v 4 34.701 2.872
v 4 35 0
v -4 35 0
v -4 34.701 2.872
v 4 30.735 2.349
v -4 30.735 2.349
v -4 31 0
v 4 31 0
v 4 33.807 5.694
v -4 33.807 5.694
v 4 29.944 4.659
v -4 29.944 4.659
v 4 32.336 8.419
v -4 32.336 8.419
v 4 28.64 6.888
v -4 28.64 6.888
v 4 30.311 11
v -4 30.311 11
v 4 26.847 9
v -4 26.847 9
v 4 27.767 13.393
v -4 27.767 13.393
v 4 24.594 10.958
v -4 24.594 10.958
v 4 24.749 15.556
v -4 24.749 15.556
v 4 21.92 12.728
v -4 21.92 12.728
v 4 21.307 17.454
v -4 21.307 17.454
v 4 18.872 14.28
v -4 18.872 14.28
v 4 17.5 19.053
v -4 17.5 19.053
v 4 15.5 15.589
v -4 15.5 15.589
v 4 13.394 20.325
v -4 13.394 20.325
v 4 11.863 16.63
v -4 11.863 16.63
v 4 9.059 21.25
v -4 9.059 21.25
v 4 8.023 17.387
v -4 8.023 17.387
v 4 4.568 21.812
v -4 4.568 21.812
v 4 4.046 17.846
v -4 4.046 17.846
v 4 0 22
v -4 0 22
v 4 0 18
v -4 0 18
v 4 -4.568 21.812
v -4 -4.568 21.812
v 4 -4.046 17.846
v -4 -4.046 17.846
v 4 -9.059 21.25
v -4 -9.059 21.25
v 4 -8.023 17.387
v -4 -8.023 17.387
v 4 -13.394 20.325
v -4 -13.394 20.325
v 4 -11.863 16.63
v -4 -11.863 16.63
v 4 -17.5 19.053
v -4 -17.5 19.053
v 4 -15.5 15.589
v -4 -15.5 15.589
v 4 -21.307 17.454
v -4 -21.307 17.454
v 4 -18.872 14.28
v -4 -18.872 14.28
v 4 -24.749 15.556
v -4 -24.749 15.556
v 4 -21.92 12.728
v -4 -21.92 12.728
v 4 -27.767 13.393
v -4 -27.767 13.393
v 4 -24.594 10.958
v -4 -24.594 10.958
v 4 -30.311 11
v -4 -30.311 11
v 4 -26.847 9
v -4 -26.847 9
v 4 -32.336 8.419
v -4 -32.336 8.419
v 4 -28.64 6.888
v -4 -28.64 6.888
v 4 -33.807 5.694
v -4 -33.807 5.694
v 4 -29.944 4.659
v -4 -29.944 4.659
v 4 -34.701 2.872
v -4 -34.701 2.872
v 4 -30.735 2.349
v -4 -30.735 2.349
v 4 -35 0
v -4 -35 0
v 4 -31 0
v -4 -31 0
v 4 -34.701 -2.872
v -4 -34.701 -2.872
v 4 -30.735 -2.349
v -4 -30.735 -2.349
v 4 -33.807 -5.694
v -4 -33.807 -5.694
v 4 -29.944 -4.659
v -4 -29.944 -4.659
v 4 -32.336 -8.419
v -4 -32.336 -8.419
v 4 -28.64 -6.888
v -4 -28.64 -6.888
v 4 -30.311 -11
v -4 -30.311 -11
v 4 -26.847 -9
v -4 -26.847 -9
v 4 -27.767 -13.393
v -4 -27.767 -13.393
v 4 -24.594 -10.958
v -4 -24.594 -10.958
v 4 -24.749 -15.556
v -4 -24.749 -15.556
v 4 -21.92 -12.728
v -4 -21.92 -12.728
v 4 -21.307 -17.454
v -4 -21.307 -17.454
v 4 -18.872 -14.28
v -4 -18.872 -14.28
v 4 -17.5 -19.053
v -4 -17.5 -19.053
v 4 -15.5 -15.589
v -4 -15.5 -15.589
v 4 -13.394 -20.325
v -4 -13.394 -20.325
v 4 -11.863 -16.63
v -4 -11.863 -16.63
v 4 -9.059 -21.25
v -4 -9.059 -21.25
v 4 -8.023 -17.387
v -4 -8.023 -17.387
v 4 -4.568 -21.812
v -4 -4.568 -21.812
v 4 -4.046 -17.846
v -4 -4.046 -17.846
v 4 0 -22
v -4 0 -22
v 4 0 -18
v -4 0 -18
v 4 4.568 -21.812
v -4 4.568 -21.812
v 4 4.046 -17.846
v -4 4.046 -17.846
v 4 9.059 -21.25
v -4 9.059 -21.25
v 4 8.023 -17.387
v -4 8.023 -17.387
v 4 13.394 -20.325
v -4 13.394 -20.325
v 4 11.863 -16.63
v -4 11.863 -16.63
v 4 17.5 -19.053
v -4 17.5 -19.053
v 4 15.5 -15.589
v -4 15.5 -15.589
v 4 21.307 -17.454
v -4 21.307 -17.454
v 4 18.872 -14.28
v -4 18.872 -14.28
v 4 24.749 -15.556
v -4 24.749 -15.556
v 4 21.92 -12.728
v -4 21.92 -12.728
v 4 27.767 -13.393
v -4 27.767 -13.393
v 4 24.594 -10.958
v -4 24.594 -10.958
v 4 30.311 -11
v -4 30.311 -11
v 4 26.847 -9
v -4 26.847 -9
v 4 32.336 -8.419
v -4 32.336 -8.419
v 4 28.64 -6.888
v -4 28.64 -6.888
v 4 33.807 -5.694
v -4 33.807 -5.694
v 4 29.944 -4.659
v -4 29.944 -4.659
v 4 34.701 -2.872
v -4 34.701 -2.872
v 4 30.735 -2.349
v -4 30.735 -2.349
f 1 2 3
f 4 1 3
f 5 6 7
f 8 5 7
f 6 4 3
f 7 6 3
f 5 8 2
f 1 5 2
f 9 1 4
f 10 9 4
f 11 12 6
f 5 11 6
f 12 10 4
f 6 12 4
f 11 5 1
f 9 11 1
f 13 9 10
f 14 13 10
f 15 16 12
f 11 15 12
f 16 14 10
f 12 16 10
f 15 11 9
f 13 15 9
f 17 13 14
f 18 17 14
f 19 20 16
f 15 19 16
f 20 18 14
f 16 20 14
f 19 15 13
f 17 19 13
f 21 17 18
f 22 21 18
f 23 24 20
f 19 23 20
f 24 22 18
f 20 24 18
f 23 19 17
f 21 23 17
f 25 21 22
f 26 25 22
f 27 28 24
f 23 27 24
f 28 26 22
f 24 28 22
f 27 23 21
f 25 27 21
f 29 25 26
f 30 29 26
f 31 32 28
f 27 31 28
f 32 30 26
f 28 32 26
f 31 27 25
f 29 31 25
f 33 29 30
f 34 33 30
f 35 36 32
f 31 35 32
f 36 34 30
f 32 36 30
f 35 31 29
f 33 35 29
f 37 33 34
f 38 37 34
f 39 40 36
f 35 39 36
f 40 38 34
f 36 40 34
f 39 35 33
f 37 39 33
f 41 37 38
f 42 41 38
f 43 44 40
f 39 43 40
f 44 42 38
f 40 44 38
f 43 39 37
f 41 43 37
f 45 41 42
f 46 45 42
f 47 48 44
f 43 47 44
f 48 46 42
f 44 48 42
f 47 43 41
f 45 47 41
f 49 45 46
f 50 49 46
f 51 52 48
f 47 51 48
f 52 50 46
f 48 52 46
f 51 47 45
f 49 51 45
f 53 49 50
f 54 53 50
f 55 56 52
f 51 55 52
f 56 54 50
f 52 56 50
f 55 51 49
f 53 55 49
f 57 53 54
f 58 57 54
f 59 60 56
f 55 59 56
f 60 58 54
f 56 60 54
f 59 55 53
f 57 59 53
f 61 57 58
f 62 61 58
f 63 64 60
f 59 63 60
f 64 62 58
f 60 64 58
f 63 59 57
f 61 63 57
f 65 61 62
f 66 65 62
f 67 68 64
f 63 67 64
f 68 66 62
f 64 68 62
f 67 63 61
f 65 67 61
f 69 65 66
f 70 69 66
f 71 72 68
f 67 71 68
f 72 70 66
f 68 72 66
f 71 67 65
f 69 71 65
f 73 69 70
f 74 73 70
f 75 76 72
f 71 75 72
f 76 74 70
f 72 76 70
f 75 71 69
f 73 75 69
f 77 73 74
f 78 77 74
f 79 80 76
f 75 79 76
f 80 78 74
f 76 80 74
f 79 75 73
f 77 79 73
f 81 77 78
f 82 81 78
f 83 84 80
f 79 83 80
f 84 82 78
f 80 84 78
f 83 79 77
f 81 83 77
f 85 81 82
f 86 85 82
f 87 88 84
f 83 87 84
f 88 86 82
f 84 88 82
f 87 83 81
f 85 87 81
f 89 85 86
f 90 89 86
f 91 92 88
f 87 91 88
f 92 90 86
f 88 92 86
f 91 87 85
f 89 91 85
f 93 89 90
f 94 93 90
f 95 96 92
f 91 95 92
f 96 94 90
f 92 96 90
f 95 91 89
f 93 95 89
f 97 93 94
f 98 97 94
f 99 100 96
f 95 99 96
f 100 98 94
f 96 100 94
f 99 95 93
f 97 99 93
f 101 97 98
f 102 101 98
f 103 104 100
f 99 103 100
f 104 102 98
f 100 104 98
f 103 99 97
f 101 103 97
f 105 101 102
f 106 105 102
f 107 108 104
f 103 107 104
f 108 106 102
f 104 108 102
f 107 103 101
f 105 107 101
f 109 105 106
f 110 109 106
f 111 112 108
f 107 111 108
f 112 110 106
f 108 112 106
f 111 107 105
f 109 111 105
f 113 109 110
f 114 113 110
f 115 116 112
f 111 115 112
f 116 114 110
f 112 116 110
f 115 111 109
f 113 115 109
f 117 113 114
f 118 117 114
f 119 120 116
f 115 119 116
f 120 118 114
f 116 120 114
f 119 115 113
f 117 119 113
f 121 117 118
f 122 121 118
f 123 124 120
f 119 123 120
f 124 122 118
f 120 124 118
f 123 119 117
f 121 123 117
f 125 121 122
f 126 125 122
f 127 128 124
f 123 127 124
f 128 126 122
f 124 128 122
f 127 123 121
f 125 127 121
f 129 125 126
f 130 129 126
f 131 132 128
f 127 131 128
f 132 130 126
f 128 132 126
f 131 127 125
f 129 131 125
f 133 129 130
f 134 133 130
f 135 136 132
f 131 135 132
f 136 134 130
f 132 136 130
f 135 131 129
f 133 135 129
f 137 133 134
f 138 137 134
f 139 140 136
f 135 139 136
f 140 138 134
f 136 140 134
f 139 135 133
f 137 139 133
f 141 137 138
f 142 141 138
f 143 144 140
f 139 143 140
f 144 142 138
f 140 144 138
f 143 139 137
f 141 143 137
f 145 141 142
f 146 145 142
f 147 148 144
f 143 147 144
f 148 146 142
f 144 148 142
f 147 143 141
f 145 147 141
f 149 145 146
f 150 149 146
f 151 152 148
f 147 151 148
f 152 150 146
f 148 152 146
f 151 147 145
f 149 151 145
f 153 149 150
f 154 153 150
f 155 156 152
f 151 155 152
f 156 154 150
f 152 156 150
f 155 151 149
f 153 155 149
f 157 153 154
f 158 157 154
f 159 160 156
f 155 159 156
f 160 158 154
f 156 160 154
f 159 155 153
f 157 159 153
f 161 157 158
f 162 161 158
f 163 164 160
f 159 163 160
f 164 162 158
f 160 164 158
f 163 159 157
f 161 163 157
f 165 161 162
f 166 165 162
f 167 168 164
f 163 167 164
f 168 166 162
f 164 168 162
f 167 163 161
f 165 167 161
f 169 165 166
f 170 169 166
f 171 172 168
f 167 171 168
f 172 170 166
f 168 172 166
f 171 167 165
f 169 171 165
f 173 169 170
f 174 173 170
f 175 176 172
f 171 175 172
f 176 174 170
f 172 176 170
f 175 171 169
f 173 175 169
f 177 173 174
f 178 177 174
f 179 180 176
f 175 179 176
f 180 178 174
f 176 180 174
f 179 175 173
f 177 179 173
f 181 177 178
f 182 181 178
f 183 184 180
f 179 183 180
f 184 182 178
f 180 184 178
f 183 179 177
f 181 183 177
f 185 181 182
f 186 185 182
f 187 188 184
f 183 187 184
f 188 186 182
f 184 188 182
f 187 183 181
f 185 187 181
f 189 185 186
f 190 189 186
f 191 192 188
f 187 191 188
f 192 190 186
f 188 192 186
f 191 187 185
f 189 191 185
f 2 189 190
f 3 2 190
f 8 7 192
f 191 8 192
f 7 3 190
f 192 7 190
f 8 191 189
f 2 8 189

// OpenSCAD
polyhedron(points=[[-4.0, 35.0, 0.0], [-4.0, 34.70057, 2.871576], [-4.0, 33.807404, 5.694019], [-4.0, 32.335784, 8.419036], [-4.0, 30.310889, 11.0], [-4.0, 27.767367, 13.392751], [-4.0, 24.748737, 15.556349], [-4.0, 21.30665, 17.453773], [-4.0, 17.5, 19.052559], [-4.0, 13.39392, 20.32535], [-4.0, 9.058667, 21.250368], [-4.0, 4.568417, 21.811787], [-4.0, 0.0, 22.0], [-4.0, -4.568417, 21.811787], [-4.0, -9.058667, 21.250368], [-4.0, -13.39392, 20.32535], [-4.0, -17.5, 19.052559], [-4.0, -21.30665, 17.453773], [-4.0, -24.748737, 15.556349], [-4.0, -27.767367, 13.392751], [-4.0, -30.310889, 11.0], [-4.0, -32.335784, 8.419036], [-4.0, -33.807404, 5.694019], [-4.0, -34.70057, 2.871576], [-4.0, -35.0, 0.0], [-4.0, -34.70057, -2.871576], [-4.0, -33.807404, -5.694019], [-4.0, -32.335784, -8.419036], [-4.0, -30.310889, -11.0], [-4.0, -27.767367, -13.392751], [-4.0, -24.748737, -15.556349], [-4.0, -21.30665, -17.453773], [-4.0, -17.5, -19.052559], [-4.0, -13.39392, -20.32535], [-4.0, -9.058667, -21.250368], [-4.0, -4.568417, -21.811787], [-4.0, -0.0, -22.0], [-4.0, 4.568417, -21.811787], [-4.0, 9.058667, -21.250368], [-4.0, 13.39392, -20.32535], [-4.0, 17.5, -19.052559], [-4.0, 21.30665, -17.453773], [-4.0, 24.748737, -15.556349], [-4.0, 27.767367, -13.392751], [-4.0, 30.310889, -11.0], [-4.0, 32.335784, -8.419036], [-4.0, 33.807404, -5.694019], [-4.0, 34.70057, -2.871576], [-4.0, 31.0, 0.0], [-4.0, 30.734791, 2.349471], [-4.0, 29.943701, 4.658743], [-4.0, 28.640266, 6.888302], [-4.0, 26.846788, 9.0], [-4.0, 24.593954, 10.957706], [-4.0, 21.92031, 12.727922], [-4.0, 18.871604, 14.28036], [-4.0, 15.5, 15.588457], [-4.0, 11.863186, 16.629832], [-4.0, 8.02339, 17.386665], [-4.0, 4.046312, 17.846008], [-4.0, 0.0, 18.0], [-4.0, -4.046312, 17.846008], [-4.0, -8.02339, 17.386665], [-4.0, -11.863186, 16.629832], [-4.0, -15.5, 15.588457], [-4.0, -18.871604, 14.28036], [-4.0, -21.92031, 12.727922], [-4.0, -24.593954, 10.957706], [-4.0, -26.846788, 9.0], [-4.0, -28.640266, 6.888302], [-4.0, -29.943701, 4.658743], [-4.0, -30.734791, 2.349471], [-4.0, -31.0, 0.0], [-4.0, -30.734791, -2.349471], [-4.0, -29.943701, -4.658743], [-4.0, -28.640266, -6.888302], [-4.0, -26.846788, -9.0], [-4.0, -24.593954, -10.957706], [-4.0, -21.92031, -12.727922], [-4.0, -18.871604, -14.28036], [-4.0, -15.5, -15.588457], [-4.0, -11.863186, -16.629832], [-4.0, -8.02339, -17.386665], [-4.0, -4.046312, -17.846008], [-4.0, -0.0, -18.0], [-4.0, 4.046312, -17.846008], [-4.0, 8.02339, -17.386665], [-4.0, 11.863186, -16.629832], [-4.0, 15.5, -15.588457], [-4.0, 18.871604, -14.28036], [-4.0, 21.92031, -12.727922], [-4.0, 24.593954, -10.957706], [-4.0, 26.846788, -9.0], [-4.0, 28.640266, -6.888302], [-4.0, 29.943701, -4.658743], [-4.0, 30.734791, -2.349471], [4.0, 35.0, 0.0], [4.0, 34.70057, 2.871576], [4.0, 33.807404, 5.694019], [4.0, 32.335784, 8.419036], [4.0, 30.310889, 11.0], [4.0, 27.767367, 13.392751], [4.0, 24.748737, 15.556349], [4.0, 21.30665, 17.453773], [4.0, 17.5, 19.052559], [4.0, 13.39392, 20.32535], [4.0, 9.058667, 21.250368], [4.0, 4.568417, 21.811787], [4.0, 0.0, 22.0], [4.0, -4.568417, 21.811787], [4.0, -9.058667, 21.250368], [4.0, -13.39392, 20.32535], [4.0, -17.5, 19.052559], [4.0, -21.30665, 17.453773], [4.0, -24.748737, 15.556349], [4.0, -27.767367, 13.392751], [4.0, -30.310889, 11.0], [4.0, -32.335784, 8.419036], [4.0, -33.807404, 5.694019], [4.0, -34.70057, 2.871576], [4.0, -35.0, 0.0], [4.0, -34.70057, -2.871576], [4.0, -33.807404, -5.694019], [4.0, -32.335784, -8.419036], [4.0, -30.310889, -11.0], [4.0, -27.767367, -13.392751], [4.0, -24.748737, -15.556349], [4.0, -21.30665, -17.453773], [4.0, -17.5, -19.052559], [4.0, -13.39392, -20.32535], [4.0, -9.058667, -21.250368], [4.0, -4.568417, -21.811787], [4.0, -0.0, -22.0], [4.0, 4.568417, -21.811787], [4.0, 9.058667, -21.250368], [4.0, 13.39392, -20.32535], [4.0, 17.5, -19.052559], [4.0, 21.30665, -17.453773], [4.0, 24.748737, -15.556349], [4.0, 27.767367, -13.392751], [4.0, 30.310889, -11.0], [4.0, 32.335784, -8.419036], [4.0, 33.807404, -5.694019], [4.0, 34.70057, -2.871576], [4.0, 31.0, 0.0], [4.0, 30.734791, 2.349471], [4.0, 29.943701, 4.658743], [4.0, 28.640266, 6.888302], [4.0, 26.846788, 9.0], [4.0, 24.593954, 10.957706], [4.0, 21.92031, 12.727922], [4.0, 18.871604, 14.28036], [4.0, 15.5, 15.588457], [4.0, 11.863186, 16.629832], [4.0, 8.02339, 17.386665], [4.0, 4.046312, 17.846008], [4.0, 0.0, 18.0], [4.0, -4.046312, 17.846008], [4.0, -8.02339, 17.386665], [4.0, -11.863186, 16.629832], [4.0, -15.5, 15.588457], [4.0, -18.871604, 14.28036], [4.0, -21.92031, 12.727922], [4.0, -24.593954, 10.957706], [4.0, -26.846788, 9.0], [4.0, -28.640266, 6.888302], [4.0, -29.943701, 4.658743], [4.0, -30.734791, 2.349471], [4.0, -31.0, 0.0], [4.0, -30.734791, -2.349471], [4.0, -29.943701, -4.658743], [4.0, -28.640266, -6.888302], [4.0, -26.846788, -9.0], [4.0, -24.593954, -10.957706], [4.0, -21.92031, -12.727922], [4.0, -18.871604, -14.28036], [4.0, -15.5, -15.588457], [4.0, -11.863186, -16.629832], [4.0, -8.02339, -17.386665], [4.0, -4.046312, -17.846008], [4.0, -0.0, -18.0], [4.0, 4.046312, -17.846008], [4.0, 8.02339, -17.386665], [4.0, 11.863186, -16.629832], [4.0, 15.5, -15.588457], [4.0, 18.871604, -14.28036], [4.0, 21.92031, -12.727922], [4.0, 24.593954, -10.957706], [4.0, 26.846788, -9.0], [4.0, 28.640266, -6.888302], [4.0, 29.943701, -4.658743], [4.0, 30.734791, -2.349471]], faces=[[0, 96, 97], [0, 97, 1], [48, 49, 145], [48, 145, 144], [0, 1, 49], [0, 49, 48], [96, 144, 145], [96, 145, 97], [1, 97, 98], [1, 98, 2], [49, 50, 146], [49, 146, 145], [1, 2, 50], [1, 50, 49], [97, 145, 146], [97, 146, 98], [2, 98, 99], [2, 99, 3], [50, 51, 147], [50, 147, 146], [2, 3, 51], [2, 51, 50], [98, 146, 147], [98, 147, 99], [3, 99, 100], [3, 100, 4], [51, 52, 148], [51, 148, 147], [3, 4, 52], [3, 52, 51], [99, 147, 148], [99, 148, 100], [4, 100, 101], [4, 101, 5], [52, 53, 149], [52, 149, 148], [4, 5, 53], [4, 53, 52], [100, 148, 149], [100, 149, 101], [5, 101, 102], [5, 102, 6], [53, 54, 150], [53, 150, 149], [5, 6, 54], [5, 54, 53], [101, 149, 150], [101, 150, 102], [6, 102, 103], [6, 103, 7], [54, 55, 151], [54, 151, 150], [6, 7, 55], [6, 55, 54], [102, 150, 151], [102, 151, 103], [7, 103, 104], [7, 104, 8], [55, 56, 152], [55, 152, 151], [7, 8, 56], [7, 56, 55], [103, 151, 152], [103, 152, 104], [8, 104, 105], [8, 105, 9], [56, 57, 153], [56, 153, 152], [8, 9, 57], [8, 57, 56], [104, 152, 153], [104, 153, 105], [9, 105, 106], [9, 106, 10], [57, 58, 154], [57, 154, 153], [9, 10, 58], [9, 58, 57], [105, 153, 154], [105, 154, 106], [10, 106, 107], [10, 107, 11], [58, 59, 155], [58, 155, 154], [10, 11, 59], [10, 59, 58], [106, 154, 155], [106, 155, 107], [11, 107, 108], [11, 108, 12], [59, 60, 156], [59, 156, 155], [11, 12, 60], [11, 60, 59], [107, 155, 156], [107, 156, 108], [12, 108, 109], [12, 109, 13], [60, 61, 157], [60, 157, 156], [12, 13, 61], [12, 61, 60], [108, 156, 157], [108, 157, 109], [13, 109, 110], [13, 110, 14], [61, 62, 158], [61, 158, 157], [13, 14, 62], [13, 62, 61], [109, 157, 158], [109, 158, 110], [14, 110, 111], [14, 111, 15], [62, 63, 159], [62, 159, 158], [14, 15, 63], [14, 63, 62], [110, 158, 159], [110, 159, 111], [15, 111, 112], [15, 112, 16], [63, 64, 160], [63, 160, 159], [15, 16, 64], [15, 64, 63], [111, 159, 160], [111, 160, 112], [16, 112, 113], [16, 113, 17], [64, 65, 161], [64, 161, 160], [16, 17, 65], [16, 65, 64], [112, 160, 161], [112, 161, 113], [17, 113, 114], [17, 114, 18], [65, 66, 162], [65, 162, 161], [17, 18, 66], [17, 66, 65], [113, 161, 162], [113, 162, 114], [18, 114, 115], [18, 115, 19], [66, 67, 163], [66, 163, 162], [18, 19, 67], [18, 67, 66], [114, 162, 163], [114, 163, 115], [19, 115, 116], [19, 116, 20], [67, 68, 164], [67, 164, 163], [19, 20, 68], [19, 68, 67], [115, 163, 164], [115, 164, 116], [20, 116, 117], [20, 117, 21], [68, 69, 165], [68, 165, 164], [20, 21, 69], [20, 69, 68], [116, 164, 165], [116, 165, 117], [21, 117, 118], [21, 118, 22], [69, 70, 166], [69, 166, 165], [21, 22, 70], [21, 70, 69], [117, 165, 166], [117, 166, 118], [22, 118, 119], [22, 119, 23], [70, 71, 167], [70, 167, 166], [22, 23, 71], [22, 71, 70], [118, 166, 167], [118, 167, 119], [23, 119, 120], [23, 120, 24], [71, 72, 168], [71, 168, 167], [23, 24, 72], [23, 72, 71], [119, 167, 168], [119, 168, 120], [24, 120, 121], [24, 121, 25], [72, 73, 169], [72, 169, 168], [24, 25, 73], [24, 73, 72], [120, 168, 169], [120, 169, 121], [25, 121, 122], [25, 122, 26], [73, 74, 170], [73, 170, 169], [25, 26, 74], [25, 74, 73], [121, 169, 170], [121, 170, 122], [26, 122, 123], [26, 123, 27], [74, 75, 171], [74, 171, 170], [26, 27, 75], [26, 75, 74], [122, 170, 171], [122, 171, 123], [27, 123, 124], [27, 124, 28], [75, 76, 172], [75, 172, 171], [27, 28, 76], [27, 76, 75], [123, 171, 172], [123, 172, 124], [28, 124, 125], [28, 125, 29], [76, 77, 173], [76, 173, 172], [28, 29, 77], [28, 77, 76], [124, 172, 173], [124, 173, 125], [29, 125, 126], [29, 126, 30], [77, 78, 174], [77, 174, 173], [29, 30, 78], [29, 78, 77], [125, 173, 174], [125, 174, 126], [30, 126, 127], [30, 127, 31], [78, 79, 175], [78, 175, 174], [30, 31, 79], [30, 79, 78], [126, 174, 175], [126, 175, 127], [31, 127, 128], [31, 128, 32], [79, 80, 176], [79, 176, 175], [31, 32, 80], [31, 80, 79], [127, 175, 176], [127, 176, 128], [32, 128, 129], [32, 129, 33], [80, 81, 177], [80, 177, 176], [32, 33, 81], [32, 81, 80], [128, 176, 177], [128, 177, 129], [33, 129, 130], [33, 130, 34], [81, 82, 178], [81, 178, 177], [33, 34, 82], [33, 82, 81], [129, 177, 178], [129, 178, 130], [34, 130, 131], [34, 131, 35], [82, 83, 179], [82, 179, 178], [34, 35, 83], [34, 83, 82], [130, 178, 179], [130, 179, 131], [35, 131, 132], [35, 132, 36], [83, 84, 180], [83, 180, 179], [35, 36, 84], [35, 84, 83], [131, 179, 180], [131, 180, 132], [36, 132, 133], [36, 133, 37], [84, 85, 181], [84, 181, 180], [36, 37, 85], [36, 85, 84], [132, 180, 181], [132, 181, 133], [37, 133, 134], [37, 134, 38], [85, 86, 182], [85, 182, 181], [37, 38, 86], [37, 86, 85], [133, 181, 182], [133, 182, 134], [38, 134, 135], [38, 135, 39], [86, 87, 183], [86, 183, 182], [38, 39, 87], [38, 87, 86], [134, 182, 183], [134, 183, 135], [39, 135, 136], [39, 136, 40], [87, 88, 184], [87, 184, 183], [39, 40, 88], [39, 88, 87], [135, 183, 184], [135, 184, 136], [40, 136, 137], [40, 137, 41], [88, 89, 185], [88, 185, 184], [40, 41, 89], [40, 89, 88], [136, 184, 185], [136, 185, 137], [41, 137, 138], [41, 138, 42], [89, 90, 186], [89, 186, 185], [41, 42, 90], [41, 90, 89], [137, 185, 186], [137, 186, 138], [42, 138, 139], [42, 139, 43], [90, 91, 187], [90, 187, 186], [42, 43, 91], [42, 91, 90], [138, 186, 187], [138, 187, 139], [43, 139, 140], [43, 140, 44], [91, 92, 188], [91, 188, 187], [43, 44, 92], [43, 92, 91], [139, 187, 188], [139, 188, 140], [44, 140, 141], [44, 141, 45], [92, 93, 189], [92, 189, 188], [44, 45, 93], [44, 93, 92], [140, 188, 189], [140, 189, 141], [45, 141, 142], [45, 142, 46], [93, 94, 190], [93, 190, 189], [45, 46, 94], [45, 94, 93], [141, 189, 190], [141, 190, 142], [46, 142, 143], [46, 143, 47], [94, 95, 191], [94, 191, 190], [46, 47, 95], [46, 95, 94], [142, 190, 191], [142, 191, 143], [47, 143, 96], [47, 96, 0], [95, 48, 144], [95, 144, 191], [47, 0, 48], [47, 48, 95], [143, 191, 144], [143, 144, 96]], convexity=20);
